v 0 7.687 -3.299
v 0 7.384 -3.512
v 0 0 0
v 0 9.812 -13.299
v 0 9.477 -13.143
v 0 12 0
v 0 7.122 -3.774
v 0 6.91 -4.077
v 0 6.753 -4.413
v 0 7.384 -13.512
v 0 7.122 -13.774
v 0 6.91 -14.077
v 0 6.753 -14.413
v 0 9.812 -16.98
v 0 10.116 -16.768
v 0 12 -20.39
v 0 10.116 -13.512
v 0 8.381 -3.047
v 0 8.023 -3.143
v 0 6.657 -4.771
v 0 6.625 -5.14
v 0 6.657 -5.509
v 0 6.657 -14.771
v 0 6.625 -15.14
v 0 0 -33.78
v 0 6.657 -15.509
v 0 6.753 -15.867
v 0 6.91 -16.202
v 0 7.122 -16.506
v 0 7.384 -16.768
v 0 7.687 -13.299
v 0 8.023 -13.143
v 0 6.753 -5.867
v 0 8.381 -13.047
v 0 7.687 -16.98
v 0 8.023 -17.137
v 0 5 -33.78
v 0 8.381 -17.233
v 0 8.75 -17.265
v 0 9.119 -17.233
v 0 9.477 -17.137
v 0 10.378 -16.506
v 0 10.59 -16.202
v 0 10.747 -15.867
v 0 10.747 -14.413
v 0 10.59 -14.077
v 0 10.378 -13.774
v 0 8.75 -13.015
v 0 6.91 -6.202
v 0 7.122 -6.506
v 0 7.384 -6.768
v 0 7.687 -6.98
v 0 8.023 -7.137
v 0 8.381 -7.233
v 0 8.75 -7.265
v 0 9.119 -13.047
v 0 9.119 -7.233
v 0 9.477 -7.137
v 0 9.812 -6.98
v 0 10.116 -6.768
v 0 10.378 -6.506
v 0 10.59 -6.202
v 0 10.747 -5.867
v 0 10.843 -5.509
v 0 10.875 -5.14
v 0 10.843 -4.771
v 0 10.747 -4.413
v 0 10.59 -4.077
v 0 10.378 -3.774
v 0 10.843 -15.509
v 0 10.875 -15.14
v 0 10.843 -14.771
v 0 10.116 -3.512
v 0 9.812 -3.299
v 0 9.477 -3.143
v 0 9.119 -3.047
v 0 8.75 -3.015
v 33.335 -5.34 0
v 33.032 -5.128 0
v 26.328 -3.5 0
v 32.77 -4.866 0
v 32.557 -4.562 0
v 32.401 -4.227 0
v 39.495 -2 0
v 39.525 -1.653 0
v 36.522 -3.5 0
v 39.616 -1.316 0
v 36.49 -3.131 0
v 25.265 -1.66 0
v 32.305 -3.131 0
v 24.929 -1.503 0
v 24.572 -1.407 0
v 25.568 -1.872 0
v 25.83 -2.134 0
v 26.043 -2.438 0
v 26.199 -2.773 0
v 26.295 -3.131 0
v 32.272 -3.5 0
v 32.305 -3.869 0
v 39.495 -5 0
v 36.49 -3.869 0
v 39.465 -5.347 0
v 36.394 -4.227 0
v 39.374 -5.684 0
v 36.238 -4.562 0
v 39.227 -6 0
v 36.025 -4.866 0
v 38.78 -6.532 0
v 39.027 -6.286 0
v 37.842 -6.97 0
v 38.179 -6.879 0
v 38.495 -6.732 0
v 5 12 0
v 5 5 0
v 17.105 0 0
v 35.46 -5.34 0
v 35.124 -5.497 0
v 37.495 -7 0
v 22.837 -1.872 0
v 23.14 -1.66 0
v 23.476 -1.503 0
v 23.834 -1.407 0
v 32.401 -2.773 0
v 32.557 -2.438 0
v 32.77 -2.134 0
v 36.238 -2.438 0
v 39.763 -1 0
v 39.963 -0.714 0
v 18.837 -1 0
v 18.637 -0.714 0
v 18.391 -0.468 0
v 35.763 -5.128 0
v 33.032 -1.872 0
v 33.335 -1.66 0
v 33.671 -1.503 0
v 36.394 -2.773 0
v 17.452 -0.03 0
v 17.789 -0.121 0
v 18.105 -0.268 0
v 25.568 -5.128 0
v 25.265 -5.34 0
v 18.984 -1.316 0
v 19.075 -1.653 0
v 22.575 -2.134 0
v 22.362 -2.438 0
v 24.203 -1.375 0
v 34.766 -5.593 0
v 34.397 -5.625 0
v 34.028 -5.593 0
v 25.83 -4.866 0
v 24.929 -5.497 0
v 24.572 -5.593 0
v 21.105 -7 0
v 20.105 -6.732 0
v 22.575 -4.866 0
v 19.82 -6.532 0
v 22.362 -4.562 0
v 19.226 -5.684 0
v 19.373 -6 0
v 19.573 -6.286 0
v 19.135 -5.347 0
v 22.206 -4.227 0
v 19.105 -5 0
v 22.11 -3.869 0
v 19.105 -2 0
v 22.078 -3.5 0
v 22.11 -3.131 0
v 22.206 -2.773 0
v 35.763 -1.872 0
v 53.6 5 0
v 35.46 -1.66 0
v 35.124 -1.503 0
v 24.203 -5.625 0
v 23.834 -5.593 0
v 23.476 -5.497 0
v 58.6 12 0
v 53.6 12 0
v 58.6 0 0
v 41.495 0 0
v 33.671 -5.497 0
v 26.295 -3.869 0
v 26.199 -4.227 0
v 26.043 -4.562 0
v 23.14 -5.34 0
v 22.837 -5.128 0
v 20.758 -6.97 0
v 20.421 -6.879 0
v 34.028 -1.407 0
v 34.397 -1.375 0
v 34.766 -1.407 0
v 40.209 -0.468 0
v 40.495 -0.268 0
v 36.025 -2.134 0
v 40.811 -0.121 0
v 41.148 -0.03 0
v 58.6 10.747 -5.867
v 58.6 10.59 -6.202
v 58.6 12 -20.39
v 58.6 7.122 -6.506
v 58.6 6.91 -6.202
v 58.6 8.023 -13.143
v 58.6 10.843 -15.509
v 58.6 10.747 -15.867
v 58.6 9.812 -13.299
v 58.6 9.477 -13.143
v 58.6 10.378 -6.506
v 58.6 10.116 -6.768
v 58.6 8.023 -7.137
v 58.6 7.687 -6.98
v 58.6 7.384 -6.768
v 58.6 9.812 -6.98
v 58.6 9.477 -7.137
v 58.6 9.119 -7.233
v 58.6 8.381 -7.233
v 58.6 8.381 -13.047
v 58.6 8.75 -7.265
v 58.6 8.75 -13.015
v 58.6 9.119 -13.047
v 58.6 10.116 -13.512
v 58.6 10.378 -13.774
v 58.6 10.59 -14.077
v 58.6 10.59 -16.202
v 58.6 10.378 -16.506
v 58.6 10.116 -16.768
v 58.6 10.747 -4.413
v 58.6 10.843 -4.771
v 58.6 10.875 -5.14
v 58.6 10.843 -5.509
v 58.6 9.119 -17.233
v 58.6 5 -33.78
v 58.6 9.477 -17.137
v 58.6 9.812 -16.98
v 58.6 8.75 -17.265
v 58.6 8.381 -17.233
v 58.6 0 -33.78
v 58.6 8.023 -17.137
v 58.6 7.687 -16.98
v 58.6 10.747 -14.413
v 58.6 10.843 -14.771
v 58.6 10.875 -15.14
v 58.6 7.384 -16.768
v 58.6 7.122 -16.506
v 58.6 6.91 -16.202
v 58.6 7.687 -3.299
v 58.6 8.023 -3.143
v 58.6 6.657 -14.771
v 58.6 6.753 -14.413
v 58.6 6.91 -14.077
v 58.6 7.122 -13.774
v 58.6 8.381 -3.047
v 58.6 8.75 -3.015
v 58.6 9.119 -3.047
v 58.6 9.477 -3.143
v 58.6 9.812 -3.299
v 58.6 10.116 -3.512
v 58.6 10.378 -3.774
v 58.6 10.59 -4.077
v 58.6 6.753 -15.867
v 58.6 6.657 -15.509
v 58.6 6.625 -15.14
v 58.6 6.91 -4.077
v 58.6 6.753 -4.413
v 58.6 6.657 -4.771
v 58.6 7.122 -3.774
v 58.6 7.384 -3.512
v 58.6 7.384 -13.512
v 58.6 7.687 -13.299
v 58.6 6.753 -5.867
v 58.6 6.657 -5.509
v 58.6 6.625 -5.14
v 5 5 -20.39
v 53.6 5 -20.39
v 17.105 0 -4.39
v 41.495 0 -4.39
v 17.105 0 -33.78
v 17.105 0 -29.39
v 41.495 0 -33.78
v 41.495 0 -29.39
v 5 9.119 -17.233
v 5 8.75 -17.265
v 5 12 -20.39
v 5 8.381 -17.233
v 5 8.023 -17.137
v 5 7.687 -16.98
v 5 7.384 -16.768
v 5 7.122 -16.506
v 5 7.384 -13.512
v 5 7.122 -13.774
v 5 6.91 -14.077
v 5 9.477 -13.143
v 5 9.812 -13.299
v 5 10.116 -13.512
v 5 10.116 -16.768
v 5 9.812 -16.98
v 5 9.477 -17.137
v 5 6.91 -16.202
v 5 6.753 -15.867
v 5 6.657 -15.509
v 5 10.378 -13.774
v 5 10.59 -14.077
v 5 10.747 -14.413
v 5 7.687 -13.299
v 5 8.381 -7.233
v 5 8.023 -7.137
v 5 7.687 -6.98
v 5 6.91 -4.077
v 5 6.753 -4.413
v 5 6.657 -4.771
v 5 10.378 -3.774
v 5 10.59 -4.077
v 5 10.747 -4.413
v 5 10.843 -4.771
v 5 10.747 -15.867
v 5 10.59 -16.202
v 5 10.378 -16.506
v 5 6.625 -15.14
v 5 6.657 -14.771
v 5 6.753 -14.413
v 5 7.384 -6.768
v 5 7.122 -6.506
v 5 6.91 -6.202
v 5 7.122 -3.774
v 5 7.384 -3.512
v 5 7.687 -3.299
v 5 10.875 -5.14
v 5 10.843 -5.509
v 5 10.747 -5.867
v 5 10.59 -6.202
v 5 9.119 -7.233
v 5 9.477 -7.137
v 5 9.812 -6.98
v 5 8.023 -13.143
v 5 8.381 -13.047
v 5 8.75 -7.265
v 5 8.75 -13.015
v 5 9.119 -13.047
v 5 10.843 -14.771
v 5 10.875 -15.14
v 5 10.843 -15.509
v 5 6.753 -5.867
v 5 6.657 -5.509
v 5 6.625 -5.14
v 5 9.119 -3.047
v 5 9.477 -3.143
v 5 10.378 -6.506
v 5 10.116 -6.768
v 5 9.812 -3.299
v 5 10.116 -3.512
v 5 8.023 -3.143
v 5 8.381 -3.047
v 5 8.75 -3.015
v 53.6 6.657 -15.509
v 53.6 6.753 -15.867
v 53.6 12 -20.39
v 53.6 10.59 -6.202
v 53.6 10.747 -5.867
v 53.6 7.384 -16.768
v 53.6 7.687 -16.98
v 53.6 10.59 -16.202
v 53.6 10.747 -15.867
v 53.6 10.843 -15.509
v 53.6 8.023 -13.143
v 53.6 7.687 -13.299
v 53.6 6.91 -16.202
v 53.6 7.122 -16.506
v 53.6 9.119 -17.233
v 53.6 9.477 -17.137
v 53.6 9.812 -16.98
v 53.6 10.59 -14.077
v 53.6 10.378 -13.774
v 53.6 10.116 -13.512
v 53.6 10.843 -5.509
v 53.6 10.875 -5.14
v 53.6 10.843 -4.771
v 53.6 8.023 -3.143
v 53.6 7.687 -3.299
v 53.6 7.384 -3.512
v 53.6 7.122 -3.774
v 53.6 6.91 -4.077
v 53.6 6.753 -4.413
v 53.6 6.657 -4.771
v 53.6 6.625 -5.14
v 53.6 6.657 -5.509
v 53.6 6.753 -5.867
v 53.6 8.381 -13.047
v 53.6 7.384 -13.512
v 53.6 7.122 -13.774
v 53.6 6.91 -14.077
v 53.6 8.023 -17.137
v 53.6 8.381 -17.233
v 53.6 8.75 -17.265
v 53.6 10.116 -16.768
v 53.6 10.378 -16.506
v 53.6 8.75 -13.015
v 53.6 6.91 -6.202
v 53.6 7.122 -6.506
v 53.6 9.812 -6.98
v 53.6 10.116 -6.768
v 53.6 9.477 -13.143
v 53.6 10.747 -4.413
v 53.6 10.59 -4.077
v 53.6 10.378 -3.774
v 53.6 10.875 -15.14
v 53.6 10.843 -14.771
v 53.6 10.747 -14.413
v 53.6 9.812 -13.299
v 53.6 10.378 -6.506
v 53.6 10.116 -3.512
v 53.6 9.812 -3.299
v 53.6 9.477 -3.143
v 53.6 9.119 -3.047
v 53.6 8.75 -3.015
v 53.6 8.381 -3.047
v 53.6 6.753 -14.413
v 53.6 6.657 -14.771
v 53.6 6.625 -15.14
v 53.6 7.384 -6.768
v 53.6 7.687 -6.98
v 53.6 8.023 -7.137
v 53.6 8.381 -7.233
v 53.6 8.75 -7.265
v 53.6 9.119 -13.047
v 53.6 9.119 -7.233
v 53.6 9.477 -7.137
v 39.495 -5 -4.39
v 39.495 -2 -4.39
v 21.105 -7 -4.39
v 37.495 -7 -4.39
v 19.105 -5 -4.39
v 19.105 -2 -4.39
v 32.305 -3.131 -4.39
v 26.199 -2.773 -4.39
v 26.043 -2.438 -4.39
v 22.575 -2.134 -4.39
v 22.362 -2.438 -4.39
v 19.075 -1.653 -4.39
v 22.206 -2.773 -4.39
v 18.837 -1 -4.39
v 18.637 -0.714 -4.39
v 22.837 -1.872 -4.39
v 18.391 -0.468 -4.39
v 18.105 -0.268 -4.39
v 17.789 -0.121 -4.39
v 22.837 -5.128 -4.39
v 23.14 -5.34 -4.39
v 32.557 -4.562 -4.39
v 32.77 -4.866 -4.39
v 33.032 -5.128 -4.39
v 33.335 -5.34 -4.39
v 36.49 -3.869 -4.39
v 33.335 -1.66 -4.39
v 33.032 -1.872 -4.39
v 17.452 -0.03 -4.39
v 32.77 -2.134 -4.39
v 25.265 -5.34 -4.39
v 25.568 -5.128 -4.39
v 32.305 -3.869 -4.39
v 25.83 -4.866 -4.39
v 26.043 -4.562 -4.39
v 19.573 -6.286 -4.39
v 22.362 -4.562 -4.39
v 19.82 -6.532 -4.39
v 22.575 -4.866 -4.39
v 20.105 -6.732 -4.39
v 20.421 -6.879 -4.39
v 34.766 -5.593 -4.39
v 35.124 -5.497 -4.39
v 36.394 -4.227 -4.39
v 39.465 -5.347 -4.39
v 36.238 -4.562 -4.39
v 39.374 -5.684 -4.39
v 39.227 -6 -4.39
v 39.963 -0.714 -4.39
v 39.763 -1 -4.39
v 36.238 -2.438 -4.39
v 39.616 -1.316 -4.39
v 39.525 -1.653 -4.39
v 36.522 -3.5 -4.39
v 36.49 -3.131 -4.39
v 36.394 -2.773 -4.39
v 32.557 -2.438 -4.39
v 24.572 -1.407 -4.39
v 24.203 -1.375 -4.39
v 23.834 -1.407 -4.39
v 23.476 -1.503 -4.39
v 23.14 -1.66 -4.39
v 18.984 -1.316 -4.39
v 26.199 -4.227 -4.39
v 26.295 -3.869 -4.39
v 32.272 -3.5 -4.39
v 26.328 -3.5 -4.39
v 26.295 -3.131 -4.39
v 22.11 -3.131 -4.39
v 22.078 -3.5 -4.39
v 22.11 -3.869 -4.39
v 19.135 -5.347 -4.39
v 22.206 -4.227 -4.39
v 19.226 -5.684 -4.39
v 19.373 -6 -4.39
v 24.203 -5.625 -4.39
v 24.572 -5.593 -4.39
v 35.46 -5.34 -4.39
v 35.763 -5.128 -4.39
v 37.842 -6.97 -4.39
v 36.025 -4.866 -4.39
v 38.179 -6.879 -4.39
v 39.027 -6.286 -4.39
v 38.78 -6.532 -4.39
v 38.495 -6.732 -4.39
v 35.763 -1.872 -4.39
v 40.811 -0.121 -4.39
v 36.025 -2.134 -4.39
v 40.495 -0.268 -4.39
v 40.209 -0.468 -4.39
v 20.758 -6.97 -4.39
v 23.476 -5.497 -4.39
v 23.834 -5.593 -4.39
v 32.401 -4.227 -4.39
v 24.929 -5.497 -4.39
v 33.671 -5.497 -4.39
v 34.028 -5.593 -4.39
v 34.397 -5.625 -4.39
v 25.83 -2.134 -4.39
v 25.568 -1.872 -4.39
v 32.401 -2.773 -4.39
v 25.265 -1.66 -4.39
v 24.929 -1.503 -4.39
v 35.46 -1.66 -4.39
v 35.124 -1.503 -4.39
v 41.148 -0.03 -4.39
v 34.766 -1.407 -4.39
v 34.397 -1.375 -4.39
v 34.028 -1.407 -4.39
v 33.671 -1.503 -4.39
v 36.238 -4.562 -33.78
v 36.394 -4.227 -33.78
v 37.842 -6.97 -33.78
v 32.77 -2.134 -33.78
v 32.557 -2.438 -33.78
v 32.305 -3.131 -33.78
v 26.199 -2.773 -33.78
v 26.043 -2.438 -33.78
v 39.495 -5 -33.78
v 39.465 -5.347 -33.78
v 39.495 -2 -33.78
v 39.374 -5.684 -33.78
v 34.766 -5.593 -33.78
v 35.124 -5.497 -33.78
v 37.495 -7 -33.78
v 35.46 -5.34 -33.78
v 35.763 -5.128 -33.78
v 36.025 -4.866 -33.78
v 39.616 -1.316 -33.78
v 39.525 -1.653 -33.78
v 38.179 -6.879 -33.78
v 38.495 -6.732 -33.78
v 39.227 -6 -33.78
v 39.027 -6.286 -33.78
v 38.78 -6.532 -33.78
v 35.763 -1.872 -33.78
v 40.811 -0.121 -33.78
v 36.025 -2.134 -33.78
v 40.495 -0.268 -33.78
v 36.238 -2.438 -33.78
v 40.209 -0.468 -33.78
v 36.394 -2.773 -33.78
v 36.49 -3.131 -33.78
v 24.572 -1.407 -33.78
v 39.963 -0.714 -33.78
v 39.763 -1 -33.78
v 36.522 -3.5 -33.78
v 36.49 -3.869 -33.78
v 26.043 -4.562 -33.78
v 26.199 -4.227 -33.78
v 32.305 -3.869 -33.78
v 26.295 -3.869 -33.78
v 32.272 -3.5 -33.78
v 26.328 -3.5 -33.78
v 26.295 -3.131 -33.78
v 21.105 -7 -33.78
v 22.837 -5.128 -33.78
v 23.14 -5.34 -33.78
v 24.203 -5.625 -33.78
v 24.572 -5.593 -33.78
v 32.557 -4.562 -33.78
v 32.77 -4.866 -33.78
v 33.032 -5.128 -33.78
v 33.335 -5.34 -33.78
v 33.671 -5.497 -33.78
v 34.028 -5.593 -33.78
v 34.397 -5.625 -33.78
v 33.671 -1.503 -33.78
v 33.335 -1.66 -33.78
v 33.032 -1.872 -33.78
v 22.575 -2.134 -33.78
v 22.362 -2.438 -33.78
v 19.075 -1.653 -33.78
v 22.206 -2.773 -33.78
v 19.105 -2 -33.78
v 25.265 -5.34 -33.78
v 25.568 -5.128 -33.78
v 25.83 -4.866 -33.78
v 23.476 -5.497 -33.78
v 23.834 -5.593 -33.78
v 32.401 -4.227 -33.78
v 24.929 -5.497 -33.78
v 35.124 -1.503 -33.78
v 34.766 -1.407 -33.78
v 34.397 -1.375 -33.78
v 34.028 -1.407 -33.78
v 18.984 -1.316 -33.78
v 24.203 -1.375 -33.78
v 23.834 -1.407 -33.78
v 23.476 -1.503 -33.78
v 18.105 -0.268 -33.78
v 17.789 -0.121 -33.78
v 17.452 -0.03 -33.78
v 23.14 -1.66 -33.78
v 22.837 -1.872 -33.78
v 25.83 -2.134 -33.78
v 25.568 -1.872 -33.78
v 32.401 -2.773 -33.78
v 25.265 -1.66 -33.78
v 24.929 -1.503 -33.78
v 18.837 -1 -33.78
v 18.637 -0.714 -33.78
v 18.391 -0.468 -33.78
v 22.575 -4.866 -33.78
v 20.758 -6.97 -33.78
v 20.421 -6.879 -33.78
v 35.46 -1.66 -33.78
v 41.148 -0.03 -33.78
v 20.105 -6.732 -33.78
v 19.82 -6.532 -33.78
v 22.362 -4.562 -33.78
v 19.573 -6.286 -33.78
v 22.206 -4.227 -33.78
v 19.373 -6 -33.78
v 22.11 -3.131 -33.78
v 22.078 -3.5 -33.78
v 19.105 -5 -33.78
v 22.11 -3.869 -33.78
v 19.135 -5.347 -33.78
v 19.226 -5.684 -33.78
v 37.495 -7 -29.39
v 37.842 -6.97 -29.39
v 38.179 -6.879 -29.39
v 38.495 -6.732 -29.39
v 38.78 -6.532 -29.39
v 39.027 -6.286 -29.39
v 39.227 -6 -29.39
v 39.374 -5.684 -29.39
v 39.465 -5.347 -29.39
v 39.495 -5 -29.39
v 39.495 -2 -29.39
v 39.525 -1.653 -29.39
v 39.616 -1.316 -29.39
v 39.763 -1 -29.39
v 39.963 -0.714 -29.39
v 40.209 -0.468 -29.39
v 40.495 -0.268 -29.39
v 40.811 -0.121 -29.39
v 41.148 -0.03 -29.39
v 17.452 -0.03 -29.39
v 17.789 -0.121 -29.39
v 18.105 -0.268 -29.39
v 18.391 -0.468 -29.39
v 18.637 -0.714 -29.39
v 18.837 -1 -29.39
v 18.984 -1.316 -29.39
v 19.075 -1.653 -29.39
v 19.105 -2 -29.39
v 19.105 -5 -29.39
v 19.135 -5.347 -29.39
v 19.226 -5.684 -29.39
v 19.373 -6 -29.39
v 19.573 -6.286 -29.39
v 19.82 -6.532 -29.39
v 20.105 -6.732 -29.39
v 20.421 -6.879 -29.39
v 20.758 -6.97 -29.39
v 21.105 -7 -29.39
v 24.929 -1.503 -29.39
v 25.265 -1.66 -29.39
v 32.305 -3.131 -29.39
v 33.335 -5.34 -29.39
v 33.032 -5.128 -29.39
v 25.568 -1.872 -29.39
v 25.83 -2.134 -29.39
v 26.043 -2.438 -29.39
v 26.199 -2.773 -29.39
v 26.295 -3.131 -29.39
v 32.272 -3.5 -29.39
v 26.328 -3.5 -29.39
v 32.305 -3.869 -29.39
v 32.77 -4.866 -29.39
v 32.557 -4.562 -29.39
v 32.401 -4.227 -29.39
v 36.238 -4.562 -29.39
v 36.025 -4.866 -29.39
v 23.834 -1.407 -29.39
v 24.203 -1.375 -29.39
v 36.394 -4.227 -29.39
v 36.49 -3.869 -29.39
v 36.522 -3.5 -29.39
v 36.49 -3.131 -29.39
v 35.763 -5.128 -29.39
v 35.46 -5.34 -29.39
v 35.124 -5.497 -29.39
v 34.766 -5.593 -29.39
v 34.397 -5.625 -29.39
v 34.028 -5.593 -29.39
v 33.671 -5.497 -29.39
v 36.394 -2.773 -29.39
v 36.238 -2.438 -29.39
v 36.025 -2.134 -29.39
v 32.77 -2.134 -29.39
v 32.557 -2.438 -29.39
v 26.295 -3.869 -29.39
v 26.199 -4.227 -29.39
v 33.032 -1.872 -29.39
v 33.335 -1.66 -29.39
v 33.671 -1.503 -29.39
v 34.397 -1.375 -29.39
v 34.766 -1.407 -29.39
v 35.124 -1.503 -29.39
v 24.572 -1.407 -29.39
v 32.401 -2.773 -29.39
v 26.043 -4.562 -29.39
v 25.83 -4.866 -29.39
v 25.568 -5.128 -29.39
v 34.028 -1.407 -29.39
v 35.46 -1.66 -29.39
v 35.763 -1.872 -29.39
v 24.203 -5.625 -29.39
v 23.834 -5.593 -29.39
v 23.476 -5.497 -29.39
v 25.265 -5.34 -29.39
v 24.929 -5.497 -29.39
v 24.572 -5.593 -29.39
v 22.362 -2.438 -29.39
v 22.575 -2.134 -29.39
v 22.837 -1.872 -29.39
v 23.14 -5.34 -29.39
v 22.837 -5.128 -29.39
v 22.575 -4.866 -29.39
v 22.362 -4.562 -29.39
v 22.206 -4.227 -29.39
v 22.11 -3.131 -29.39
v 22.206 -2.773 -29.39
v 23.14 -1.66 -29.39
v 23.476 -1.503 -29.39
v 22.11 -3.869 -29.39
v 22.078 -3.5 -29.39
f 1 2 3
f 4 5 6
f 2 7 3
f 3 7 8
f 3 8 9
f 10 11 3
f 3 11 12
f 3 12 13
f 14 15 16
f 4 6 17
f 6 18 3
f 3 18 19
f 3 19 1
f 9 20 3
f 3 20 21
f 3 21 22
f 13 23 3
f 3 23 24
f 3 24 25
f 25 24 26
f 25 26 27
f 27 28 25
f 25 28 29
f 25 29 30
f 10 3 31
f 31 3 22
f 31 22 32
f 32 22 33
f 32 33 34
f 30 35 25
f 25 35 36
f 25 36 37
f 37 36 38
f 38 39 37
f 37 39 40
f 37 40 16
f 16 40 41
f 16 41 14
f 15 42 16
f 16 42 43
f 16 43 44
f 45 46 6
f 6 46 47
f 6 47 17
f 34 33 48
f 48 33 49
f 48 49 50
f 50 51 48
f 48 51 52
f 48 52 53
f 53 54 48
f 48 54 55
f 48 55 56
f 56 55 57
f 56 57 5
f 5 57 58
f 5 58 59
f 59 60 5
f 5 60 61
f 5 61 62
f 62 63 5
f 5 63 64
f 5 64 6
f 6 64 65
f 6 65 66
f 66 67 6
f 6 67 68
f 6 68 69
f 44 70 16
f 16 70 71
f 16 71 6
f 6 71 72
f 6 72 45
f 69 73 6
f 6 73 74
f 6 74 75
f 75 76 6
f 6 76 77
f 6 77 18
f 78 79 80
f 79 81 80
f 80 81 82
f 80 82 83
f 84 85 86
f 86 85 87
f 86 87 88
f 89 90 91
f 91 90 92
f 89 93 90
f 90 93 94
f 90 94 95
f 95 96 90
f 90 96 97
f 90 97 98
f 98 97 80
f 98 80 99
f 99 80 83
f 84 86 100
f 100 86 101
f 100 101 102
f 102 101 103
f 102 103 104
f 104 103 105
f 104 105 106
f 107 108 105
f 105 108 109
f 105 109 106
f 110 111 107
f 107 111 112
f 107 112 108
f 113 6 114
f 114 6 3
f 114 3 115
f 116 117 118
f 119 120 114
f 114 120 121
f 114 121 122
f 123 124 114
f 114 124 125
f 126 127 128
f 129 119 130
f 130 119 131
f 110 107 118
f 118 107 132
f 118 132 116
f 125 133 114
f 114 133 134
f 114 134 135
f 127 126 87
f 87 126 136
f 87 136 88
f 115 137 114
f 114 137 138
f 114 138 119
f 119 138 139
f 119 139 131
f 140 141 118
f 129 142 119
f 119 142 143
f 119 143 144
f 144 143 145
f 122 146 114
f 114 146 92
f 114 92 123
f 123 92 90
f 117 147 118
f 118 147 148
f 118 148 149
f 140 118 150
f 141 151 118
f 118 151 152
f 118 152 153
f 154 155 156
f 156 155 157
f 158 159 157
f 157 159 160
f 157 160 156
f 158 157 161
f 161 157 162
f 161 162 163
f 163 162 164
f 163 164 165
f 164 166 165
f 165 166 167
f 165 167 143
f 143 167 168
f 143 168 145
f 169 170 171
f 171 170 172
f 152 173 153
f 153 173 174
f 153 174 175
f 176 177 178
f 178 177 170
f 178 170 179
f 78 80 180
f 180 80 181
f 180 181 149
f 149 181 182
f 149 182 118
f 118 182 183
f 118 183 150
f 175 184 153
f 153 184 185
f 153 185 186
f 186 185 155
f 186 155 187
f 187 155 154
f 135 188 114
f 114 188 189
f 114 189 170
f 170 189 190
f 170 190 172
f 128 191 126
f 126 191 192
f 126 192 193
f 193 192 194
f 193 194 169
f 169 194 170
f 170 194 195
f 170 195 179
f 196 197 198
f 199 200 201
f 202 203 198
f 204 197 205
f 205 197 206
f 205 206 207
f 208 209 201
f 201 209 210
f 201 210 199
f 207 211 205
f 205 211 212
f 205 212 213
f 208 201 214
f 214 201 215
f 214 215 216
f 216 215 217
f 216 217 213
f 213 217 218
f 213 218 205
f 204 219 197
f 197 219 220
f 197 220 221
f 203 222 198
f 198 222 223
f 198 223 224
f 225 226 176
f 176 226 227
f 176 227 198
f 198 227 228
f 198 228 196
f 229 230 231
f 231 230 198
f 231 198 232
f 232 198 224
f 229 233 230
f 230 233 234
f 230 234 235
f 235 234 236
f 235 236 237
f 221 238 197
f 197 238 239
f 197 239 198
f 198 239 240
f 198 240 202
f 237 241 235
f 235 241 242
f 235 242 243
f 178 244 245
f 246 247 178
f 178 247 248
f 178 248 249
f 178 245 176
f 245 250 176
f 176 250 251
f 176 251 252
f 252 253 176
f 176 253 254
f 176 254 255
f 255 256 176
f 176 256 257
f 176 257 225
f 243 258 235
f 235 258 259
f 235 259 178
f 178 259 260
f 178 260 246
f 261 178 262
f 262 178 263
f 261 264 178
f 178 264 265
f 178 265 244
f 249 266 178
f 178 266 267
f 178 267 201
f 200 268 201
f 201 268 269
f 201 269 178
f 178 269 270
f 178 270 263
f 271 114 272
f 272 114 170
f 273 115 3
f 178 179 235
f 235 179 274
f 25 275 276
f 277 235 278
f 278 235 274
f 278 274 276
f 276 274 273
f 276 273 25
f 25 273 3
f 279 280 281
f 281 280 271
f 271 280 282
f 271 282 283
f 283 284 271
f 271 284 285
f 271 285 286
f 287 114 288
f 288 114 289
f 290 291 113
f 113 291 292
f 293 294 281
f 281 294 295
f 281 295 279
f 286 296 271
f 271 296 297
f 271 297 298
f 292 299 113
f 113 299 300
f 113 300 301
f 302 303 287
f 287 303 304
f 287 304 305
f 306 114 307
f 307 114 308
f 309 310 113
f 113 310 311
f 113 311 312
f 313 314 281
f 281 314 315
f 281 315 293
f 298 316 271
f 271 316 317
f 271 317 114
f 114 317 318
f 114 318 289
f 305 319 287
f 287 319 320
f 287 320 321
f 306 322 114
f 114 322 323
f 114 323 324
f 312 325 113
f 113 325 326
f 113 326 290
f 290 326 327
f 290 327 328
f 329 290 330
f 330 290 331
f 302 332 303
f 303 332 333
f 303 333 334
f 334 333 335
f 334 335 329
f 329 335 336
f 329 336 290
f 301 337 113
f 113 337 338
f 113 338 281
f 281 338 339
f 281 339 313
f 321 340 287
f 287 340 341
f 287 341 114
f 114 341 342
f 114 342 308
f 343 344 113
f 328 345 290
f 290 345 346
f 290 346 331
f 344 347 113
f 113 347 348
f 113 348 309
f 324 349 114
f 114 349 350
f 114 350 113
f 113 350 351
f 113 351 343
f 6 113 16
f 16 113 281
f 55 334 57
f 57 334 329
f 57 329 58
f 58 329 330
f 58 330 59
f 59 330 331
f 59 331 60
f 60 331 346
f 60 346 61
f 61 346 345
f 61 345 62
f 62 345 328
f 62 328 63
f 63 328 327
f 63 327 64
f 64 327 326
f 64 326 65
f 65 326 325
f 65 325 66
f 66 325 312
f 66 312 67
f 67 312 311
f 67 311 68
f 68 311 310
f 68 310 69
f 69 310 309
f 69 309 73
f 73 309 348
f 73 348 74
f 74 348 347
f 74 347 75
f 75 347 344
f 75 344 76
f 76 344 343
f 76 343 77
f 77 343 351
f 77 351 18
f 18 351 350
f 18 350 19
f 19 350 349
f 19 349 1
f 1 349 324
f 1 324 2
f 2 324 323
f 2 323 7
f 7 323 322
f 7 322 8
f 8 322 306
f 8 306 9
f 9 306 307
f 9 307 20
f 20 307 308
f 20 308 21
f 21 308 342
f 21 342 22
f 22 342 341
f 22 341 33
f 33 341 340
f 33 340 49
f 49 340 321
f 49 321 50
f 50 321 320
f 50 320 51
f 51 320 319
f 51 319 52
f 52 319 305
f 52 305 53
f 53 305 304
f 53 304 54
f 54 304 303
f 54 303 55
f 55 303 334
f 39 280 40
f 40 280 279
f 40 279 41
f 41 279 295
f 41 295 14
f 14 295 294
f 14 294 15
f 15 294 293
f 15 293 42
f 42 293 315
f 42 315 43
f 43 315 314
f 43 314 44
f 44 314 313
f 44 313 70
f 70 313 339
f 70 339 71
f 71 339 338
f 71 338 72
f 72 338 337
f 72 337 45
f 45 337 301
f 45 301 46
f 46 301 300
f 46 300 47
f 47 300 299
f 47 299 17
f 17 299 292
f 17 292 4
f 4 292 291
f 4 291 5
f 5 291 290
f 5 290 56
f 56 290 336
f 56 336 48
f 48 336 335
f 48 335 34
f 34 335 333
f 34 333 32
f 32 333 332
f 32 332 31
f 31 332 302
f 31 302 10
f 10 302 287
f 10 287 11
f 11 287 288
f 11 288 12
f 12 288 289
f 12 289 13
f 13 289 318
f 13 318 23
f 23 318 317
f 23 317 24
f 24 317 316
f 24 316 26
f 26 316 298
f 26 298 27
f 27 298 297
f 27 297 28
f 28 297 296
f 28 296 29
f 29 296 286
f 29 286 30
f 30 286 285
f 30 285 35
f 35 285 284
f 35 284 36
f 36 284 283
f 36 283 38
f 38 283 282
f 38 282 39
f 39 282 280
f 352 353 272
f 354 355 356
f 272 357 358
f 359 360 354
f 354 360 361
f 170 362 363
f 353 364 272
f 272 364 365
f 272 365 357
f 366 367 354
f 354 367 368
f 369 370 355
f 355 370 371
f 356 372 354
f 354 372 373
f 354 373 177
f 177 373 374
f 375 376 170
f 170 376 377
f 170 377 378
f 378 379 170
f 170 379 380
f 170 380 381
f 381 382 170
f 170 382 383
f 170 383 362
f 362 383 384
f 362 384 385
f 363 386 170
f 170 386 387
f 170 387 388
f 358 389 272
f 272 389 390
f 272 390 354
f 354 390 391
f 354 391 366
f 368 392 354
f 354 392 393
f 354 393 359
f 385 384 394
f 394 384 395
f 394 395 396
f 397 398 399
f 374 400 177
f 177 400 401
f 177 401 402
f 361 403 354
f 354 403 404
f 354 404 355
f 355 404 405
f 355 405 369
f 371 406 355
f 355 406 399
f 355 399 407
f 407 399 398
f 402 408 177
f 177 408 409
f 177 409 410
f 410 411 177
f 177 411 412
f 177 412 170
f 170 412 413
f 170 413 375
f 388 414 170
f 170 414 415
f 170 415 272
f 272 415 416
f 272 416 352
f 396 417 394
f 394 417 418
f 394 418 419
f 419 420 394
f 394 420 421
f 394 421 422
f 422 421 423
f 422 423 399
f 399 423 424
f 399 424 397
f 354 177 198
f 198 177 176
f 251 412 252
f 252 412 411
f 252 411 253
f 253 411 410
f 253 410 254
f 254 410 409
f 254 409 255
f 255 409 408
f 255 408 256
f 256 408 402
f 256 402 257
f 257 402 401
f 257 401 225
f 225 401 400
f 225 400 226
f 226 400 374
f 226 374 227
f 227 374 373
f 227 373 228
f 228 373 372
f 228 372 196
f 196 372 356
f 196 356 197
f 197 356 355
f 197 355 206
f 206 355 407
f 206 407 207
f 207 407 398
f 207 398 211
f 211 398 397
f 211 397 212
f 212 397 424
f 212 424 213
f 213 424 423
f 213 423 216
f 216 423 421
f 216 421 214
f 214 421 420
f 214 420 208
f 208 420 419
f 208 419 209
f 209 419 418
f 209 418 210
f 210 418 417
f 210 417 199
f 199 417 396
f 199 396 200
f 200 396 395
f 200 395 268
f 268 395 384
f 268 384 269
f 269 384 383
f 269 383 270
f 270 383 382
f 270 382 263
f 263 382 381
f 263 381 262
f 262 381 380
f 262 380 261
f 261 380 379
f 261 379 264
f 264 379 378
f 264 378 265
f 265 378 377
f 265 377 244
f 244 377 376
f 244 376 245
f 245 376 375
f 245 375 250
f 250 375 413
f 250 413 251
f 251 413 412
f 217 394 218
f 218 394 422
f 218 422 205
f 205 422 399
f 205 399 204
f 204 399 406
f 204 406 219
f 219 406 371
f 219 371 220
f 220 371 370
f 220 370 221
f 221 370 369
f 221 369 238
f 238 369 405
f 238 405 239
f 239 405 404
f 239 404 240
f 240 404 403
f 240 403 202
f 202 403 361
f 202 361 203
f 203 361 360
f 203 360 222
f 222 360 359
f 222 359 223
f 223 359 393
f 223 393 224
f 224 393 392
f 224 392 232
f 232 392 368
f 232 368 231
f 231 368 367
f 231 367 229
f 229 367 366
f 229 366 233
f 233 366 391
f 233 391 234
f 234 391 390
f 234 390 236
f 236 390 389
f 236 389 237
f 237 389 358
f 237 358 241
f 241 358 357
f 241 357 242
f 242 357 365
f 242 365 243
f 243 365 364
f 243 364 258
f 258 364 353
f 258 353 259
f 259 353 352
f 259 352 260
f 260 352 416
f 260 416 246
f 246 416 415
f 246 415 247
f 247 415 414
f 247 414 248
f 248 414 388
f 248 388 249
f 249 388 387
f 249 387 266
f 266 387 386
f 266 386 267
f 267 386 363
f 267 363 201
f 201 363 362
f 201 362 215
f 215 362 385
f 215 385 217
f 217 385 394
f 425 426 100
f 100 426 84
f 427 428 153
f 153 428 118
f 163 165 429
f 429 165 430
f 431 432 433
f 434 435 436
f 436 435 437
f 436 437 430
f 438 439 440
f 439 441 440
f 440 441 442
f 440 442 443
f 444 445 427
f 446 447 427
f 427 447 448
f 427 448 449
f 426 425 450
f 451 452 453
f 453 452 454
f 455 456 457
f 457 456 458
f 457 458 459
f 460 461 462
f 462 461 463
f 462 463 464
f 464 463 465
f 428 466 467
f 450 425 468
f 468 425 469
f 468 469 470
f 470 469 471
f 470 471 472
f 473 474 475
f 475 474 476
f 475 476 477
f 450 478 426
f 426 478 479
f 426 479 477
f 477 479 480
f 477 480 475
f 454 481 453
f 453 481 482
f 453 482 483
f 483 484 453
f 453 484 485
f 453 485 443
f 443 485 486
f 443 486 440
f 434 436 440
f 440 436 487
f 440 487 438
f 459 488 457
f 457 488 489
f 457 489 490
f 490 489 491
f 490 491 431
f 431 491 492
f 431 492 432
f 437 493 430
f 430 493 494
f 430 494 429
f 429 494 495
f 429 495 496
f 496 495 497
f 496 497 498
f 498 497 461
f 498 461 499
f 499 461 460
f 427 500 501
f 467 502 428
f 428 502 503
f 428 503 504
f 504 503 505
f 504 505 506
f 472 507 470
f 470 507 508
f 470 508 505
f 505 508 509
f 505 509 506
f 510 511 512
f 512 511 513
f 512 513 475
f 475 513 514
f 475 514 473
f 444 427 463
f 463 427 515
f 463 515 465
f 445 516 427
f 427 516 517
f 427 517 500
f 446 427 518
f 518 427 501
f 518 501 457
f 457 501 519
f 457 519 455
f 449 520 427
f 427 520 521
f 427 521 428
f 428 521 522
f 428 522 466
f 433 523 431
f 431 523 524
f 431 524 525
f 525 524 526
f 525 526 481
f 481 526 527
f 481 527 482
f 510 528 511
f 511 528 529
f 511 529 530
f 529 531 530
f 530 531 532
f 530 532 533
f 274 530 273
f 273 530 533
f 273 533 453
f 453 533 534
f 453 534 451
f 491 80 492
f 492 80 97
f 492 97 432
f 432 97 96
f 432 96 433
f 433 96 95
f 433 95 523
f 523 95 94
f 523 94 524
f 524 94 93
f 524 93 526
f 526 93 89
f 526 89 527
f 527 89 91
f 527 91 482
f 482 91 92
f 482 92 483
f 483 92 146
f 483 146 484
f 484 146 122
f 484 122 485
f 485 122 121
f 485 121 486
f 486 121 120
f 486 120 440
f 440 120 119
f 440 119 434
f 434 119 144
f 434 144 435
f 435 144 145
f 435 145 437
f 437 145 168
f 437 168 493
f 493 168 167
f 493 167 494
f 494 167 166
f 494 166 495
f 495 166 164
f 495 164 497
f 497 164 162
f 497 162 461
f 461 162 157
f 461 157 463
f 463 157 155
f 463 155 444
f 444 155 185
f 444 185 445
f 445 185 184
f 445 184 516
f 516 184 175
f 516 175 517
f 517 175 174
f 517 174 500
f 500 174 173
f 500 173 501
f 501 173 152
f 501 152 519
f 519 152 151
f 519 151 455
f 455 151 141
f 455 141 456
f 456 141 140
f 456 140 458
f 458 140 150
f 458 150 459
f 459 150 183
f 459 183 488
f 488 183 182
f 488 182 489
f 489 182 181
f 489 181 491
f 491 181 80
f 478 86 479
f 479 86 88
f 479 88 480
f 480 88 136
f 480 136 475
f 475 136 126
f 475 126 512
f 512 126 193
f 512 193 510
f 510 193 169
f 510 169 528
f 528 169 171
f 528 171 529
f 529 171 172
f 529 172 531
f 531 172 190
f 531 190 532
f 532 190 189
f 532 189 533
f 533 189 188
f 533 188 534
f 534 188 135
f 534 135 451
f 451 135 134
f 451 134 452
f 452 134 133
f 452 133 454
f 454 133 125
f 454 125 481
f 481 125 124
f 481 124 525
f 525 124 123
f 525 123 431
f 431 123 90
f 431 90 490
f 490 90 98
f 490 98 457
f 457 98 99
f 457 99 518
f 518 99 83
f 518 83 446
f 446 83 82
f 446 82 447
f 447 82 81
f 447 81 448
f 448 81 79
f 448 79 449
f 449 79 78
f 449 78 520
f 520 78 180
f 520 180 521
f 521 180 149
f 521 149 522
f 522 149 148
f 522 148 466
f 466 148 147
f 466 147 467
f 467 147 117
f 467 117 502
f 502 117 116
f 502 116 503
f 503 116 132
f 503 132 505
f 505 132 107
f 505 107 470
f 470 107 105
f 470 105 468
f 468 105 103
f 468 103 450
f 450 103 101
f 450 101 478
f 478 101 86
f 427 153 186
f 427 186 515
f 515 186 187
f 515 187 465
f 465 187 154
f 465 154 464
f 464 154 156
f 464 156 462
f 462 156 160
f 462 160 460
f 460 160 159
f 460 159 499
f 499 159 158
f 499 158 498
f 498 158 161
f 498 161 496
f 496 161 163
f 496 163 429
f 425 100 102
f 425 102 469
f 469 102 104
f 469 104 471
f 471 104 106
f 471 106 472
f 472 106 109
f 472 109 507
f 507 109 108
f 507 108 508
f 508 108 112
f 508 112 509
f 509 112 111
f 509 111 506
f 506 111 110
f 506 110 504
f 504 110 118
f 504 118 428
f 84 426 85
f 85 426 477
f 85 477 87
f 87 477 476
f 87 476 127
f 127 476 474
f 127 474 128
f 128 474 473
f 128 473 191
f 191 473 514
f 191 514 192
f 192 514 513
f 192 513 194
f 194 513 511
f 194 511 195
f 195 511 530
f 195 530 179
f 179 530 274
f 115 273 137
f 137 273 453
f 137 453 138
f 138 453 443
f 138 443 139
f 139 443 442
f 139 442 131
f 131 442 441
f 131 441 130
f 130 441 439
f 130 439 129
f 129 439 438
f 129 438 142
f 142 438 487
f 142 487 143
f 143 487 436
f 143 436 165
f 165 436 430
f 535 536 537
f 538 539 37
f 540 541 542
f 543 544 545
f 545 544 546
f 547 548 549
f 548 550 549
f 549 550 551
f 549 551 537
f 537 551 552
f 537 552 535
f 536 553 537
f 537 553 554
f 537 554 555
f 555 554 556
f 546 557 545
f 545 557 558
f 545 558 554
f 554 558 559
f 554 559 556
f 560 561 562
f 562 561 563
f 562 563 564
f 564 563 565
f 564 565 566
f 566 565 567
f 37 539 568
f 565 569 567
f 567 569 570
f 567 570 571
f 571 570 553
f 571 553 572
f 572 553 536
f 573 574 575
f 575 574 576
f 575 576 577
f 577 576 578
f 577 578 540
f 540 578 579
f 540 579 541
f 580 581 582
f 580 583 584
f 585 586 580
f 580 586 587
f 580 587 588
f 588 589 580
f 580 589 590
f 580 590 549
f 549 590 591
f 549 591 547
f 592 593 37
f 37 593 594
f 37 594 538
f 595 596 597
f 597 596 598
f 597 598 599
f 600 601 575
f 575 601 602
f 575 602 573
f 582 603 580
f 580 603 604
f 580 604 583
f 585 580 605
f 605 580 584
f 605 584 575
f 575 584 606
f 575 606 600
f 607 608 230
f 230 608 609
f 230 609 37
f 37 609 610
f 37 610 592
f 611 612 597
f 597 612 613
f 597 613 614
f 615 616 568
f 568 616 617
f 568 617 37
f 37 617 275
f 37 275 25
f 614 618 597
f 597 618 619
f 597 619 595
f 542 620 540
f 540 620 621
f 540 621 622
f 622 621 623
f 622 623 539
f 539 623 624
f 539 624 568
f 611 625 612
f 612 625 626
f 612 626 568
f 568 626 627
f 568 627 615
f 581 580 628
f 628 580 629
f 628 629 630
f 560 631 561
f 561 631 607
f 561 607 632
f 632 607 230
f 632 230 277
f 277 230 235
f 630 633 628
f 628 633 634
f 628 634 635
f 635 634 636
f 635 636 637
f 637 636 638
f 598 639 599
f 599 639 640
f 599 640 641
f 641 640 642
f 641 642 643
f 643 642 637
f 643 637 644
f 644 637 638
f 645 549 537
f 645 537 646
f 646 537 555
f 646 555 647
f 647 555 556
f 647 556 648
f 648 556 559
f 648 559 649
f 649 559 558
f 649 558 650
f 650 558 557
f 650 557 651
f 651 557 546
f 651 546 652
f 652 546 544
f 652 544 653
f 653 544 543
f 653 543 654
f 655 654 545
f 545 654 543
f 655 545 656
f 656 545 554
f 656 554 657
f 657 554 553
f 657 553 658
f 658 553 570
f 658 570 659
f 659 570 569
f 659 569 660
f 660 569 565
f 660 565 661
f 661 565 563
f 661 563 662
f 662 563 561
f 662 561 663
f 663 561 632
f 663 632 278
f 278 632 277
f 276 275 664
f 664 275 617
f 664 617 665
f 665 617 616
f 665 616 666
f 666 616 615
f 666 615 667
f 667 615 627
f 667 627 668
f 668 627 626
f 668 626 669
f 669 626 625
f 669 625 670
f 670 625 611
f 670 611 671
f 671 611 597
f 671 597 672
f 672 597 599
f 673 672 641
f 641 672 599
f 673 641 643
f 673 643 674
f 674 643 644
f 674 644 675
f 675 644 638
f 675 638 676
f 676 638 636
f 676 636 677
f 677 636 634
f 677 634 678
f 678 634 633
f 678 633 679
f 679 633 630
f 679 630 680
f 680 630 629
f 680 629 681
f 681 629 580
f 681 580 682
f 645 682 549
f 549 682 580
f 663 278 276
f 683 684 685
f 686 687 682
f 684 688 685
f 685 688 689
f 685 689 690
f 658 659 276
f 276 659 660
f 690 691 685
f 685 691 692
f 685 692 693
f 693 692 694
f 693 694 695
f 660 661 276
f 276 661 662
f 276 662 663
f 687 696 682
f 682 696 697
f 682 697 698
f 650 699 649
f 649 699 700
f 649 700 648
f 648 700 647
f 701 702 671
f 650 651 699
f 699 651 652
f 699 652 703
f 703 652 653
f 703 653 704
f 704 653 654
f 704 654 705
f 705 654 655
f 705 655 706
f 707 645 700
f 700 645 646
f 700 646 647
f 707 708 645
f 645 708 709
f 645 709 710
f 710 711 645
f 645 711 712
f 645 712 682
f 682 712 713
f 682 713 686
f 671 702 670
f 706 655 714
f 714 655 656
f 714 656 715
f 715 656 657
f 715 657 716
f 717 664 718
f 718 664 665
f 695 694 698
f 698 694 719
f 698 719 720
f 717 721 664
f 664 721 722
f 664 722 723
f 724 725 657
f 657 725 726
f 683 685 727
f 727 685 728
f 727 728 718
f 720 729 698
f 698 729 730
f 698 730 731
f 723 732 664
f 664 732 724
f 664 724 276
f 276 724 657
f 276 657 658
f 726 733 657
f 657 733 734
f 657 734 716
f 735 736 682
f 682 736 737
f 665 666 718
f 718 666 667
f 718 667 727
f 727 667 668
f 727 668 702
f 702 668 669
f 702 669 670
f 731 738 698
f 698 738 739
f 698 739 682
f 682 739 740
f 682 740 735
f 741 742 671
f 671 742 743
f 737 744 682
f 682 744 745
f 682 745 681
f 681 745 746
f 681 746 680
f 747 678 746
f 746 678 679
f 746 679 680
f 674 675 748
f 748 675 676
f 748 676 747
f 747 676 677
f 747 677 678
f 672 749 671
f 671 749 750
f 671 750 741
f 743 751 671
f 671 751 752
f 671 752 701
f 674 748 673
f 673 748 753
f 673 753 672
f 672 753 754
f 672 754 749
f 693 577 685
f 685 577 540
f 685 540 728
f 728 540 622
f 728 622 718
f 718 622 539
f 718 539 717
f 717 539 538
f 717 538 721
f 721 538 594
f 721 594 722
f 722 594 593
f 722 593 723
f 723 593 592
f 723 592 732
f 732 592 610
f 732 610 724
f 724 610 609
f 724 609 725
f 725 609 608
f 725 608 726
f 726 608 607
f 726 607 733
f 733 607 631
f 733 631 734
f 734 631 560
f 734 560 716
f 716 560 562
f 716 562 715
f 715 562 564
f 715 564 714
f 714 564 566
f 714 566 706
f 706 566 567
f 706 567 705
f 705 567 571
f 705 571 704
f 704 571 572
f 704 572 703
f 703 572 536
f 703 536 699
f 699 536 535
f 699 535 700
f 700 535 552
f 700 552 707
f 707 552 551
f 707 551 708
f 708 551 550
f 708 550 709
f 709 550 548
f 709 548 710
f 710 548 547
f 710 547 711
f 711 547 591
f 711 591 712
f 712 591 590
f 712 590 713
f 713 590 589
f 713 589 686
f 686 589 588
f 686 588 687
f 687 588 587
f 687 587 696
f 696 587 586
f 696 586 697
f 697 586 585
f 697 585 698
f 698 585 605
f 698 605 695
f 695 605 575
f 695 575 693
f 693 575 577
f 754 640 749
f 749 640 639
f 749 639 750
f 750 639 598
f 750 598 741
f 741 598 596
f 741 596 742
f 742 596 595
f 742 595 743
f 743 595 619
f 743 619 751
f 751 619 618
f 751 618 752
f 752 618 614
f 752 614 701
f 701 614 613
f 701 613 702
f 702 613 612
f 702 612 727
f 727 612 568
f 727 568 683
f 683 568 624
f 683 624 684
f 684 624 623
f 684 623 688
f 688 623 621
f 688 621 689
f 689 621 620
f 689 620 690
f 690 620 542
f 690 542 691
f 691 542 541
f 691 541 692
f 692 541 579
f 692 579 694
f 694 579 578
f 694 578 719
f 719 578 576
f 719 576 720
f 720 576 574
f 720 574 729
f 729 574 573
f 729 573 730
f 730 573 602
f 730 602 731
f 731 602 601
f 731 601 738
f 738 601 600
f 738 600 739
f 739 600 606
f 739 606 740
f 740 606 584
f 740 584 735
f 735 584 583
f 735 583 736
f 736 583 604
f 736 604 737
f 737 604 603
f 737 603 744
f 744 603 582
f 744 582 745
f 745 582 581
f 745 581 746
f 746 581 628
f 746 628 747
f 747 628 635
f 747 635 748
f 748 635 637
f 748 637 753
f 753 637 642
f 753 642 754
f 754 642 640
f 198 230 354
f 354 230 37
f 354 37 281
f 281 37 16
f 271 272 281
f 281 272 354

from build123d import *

# Parameters (mm, degrees)
SKETCH1_W                  = 58.6
SKETCH1_H                  = 20.38979341
BRACKETBASE_DEPTH          = 5
SKETCH2_W                  = 20.38979341
SKETCH2_H                  = 12
LEGMOUNTINGTAB_DEPTH       = 5
SKETCH3_R                  = 2.125
LEGMOUNTINGHOLES_DEPTH     = 5
SKETCH4_W                  = 20.38979341
SKETCH4_H                  = 7
ARDUINOMOUNTINGTAB_DEPTH   = 4.38979341
SKETCH5_R                  = 2.125
ARDUINOMOUNTINGHOLES_DEPTH = 5
FILLET1_R                  = 2
BOSS_EXTRUDE1_DEPTH        = 13.38979341
SKETCH7_R                  = 2.125
BOSS_EXTRUDE2_DEPTH        = 4.38979341
CUT_EXTRUDE1_DEPTH         = 69.695127089
CUT_EXTRUDE1_DEPTH_BACK    = 69.695127089
BOSS_EXTRUDE3_DEPTH        = 58.6


with BuildPart() as part:
    # Sketch1 → bracketBase (new body)
    with BuildSketch(Plane(origin=(0, 0, 0), x_dir=(1, 0, 0), z_dir=(0, 1, 0))):
        with Locations((29.3, 10.194896705)):
            Rectangle(SKETCH1_W, SKETCH1_H)
    extrude(amount=BRACKETBASE_DEPTH)

    # Sketch2 → legMountingTab (add)
    with BuildSketch(Plane.ZY):
        with Locations((-10.194896705, 6)):
            Rectangle(SKETCH2_W, SKETCH2_H)
    legmountingtab = extrude(amount=-LEGMOUNTINGTAB_DEPTH)

    # Sketch3 → legMountingHoles (cut)
    with BuildSketch(Plane(origin=(5, 0, 0), x_dir=(0, 0, -1), z_dir=(1, 0, 0))):
        with Locations((15.13979341, 8.75)):
            Circle(SKETCH3_R)
        with Locations((5.13979341, 8.75)):
            Circle(SKETCH3_R)
    legmountingholes = extrude(amount=-LEGMOUNTINGHOLES_DEPTH, mode=Mode.SUBTRACT)

    # legMountingHoles2: legMountingTab, legMountingHoles across plane
    add(legmountingtab.mirror(Plane.ZY.offset(-29.3)))
    add(legmountingholes.mirror(Plane.ZY.offset(-29.3)), mode=Mode.SUBTRACT)

    # Sketch4 → arduinoMountingTab (add)
    with BuildSketch(Plane.XY):
        with Locations((29.3, -3.5)):
            Rectangle(SKETCH4_W, SKETCH4_H)
    extrude(amount=-ARDUINOMOUNTINGTAB_DEPTH)

    # Sketch5 → arduinoMountingHoles (cut)
    with BuildSketch(Plane.XY):
        with Locations((34.397448352, -3.5)):
            Circle(SKETCH5_R)
        with Locations(Location((24.202551647, -3.5, 0), (0, 0, 180))):
            Circle(SKETCH5_R)
    extrude(amount=-ARDUINOMOUNTINGHOLES_DEPTH, mode=Mode.SUBTRACT)

    # Fillet1
    fillet1_edges = [part.edges().sort_by_distance(p)[0] for p in [
        (39.494896705, 0, -2.194896705),
        (39.494896705, -7, -2.194896705),
        (19.105103295, -7, -2.194896705),
        (19.105103295, 0, -2.194896705),
    ]]
    fillet(fillet1_edges, radius=FILLET1_R)

    # Sketch6 → Boss-Extrude1 (add)
    with BuildSketch(Plane(origin=(0, 0, -20.38979341), x_dir=(-1, 0, 0), z_dir=(0, 0, -1))):
        Polygon((-5, 5), (-53.6, 5), (-53.6, 12), (-58.6, 12), (-58.6, 0), (0, 0), (0, 12), (-5, 12), align=None)
    extrude(amount=BOSS_EXTRUDE1_DEPTH)

    # Sketch7 → Boss-Extrude2 (add)
    with BuildSketch(Plane(origin=(0, 0, -33.77958682), x_dir=(-1, 0, 0), z_dir=(0, 0, -1))):
        with BuildLine():
            Line((-37.494896705, -7), (-21.105103295, -7))
            ThreePointArc((-21.105103295, -7), (-19.690889733, -6.414213562), (-19.105103295, -5))
            Line((-19.105103295, -5), (-19.105103295, -2))
            ThreePointArc((-19.105103295, -2), (-18.519316857, -0.585786438), (-17.105103295, 0))
            Line((-17.105103295, 0), (-41.494896705, 0))
            ThreePointArc((-41.494896705, 0), (-40.080683143, -0.585786438), (-39.494896705, -2))
            Line((-39.494896705, -2), (-39.494896705, -5))
            ThreePointArc((-39.494896705, -5), (-38.909110267, -6.414213562), (-37.494896705, -7))
        make_face()
        with Locations(Location((-34.397448352, -3.5, 0), (0, 0, 180))):
            Circle(SKETCH7_R, mode=Mode.SUBTRACT)
        with Locations((-24.202551647, -3.5)):
            Circle(SKETCH7_R, mode=Mode.SUBTRACT)
    extrude(amount=-BOSS_EXTRUDE2_DEPTH)

    # Sketch8 → Cut-Extrude1 (cut, two sides: drawn at the far end of the back side and taken through both)
    with BuildSketch(Plane(origin=(58.6, 0, 0), x_dir=(0, 0, -1), z_dir=(1, 0, 0)).offset(-CUT_EXTRUDE1_DEPTH_BACK)):
        Polygon((20.38979341, 12), (33.77958682, 5), (33.77958682, 12), align=None)
    extrude(amount=CUT_EXTRUDE1_DEPTH + CUT_EXTRUDE1_DEPTH_BACK, mode=Mode.SUBTRACT)

    # Sketch9 → Boss-Extrude3 (add)
    with BuildSketch(Plane.ZY):
        Polygon((-20.38979341, 12), (-20.38979341, 5), (-33.77958682, 5), align=None)
    extrude(amount=-BOSS_EXTRUDE3_DEPTH)


solid = part.part
